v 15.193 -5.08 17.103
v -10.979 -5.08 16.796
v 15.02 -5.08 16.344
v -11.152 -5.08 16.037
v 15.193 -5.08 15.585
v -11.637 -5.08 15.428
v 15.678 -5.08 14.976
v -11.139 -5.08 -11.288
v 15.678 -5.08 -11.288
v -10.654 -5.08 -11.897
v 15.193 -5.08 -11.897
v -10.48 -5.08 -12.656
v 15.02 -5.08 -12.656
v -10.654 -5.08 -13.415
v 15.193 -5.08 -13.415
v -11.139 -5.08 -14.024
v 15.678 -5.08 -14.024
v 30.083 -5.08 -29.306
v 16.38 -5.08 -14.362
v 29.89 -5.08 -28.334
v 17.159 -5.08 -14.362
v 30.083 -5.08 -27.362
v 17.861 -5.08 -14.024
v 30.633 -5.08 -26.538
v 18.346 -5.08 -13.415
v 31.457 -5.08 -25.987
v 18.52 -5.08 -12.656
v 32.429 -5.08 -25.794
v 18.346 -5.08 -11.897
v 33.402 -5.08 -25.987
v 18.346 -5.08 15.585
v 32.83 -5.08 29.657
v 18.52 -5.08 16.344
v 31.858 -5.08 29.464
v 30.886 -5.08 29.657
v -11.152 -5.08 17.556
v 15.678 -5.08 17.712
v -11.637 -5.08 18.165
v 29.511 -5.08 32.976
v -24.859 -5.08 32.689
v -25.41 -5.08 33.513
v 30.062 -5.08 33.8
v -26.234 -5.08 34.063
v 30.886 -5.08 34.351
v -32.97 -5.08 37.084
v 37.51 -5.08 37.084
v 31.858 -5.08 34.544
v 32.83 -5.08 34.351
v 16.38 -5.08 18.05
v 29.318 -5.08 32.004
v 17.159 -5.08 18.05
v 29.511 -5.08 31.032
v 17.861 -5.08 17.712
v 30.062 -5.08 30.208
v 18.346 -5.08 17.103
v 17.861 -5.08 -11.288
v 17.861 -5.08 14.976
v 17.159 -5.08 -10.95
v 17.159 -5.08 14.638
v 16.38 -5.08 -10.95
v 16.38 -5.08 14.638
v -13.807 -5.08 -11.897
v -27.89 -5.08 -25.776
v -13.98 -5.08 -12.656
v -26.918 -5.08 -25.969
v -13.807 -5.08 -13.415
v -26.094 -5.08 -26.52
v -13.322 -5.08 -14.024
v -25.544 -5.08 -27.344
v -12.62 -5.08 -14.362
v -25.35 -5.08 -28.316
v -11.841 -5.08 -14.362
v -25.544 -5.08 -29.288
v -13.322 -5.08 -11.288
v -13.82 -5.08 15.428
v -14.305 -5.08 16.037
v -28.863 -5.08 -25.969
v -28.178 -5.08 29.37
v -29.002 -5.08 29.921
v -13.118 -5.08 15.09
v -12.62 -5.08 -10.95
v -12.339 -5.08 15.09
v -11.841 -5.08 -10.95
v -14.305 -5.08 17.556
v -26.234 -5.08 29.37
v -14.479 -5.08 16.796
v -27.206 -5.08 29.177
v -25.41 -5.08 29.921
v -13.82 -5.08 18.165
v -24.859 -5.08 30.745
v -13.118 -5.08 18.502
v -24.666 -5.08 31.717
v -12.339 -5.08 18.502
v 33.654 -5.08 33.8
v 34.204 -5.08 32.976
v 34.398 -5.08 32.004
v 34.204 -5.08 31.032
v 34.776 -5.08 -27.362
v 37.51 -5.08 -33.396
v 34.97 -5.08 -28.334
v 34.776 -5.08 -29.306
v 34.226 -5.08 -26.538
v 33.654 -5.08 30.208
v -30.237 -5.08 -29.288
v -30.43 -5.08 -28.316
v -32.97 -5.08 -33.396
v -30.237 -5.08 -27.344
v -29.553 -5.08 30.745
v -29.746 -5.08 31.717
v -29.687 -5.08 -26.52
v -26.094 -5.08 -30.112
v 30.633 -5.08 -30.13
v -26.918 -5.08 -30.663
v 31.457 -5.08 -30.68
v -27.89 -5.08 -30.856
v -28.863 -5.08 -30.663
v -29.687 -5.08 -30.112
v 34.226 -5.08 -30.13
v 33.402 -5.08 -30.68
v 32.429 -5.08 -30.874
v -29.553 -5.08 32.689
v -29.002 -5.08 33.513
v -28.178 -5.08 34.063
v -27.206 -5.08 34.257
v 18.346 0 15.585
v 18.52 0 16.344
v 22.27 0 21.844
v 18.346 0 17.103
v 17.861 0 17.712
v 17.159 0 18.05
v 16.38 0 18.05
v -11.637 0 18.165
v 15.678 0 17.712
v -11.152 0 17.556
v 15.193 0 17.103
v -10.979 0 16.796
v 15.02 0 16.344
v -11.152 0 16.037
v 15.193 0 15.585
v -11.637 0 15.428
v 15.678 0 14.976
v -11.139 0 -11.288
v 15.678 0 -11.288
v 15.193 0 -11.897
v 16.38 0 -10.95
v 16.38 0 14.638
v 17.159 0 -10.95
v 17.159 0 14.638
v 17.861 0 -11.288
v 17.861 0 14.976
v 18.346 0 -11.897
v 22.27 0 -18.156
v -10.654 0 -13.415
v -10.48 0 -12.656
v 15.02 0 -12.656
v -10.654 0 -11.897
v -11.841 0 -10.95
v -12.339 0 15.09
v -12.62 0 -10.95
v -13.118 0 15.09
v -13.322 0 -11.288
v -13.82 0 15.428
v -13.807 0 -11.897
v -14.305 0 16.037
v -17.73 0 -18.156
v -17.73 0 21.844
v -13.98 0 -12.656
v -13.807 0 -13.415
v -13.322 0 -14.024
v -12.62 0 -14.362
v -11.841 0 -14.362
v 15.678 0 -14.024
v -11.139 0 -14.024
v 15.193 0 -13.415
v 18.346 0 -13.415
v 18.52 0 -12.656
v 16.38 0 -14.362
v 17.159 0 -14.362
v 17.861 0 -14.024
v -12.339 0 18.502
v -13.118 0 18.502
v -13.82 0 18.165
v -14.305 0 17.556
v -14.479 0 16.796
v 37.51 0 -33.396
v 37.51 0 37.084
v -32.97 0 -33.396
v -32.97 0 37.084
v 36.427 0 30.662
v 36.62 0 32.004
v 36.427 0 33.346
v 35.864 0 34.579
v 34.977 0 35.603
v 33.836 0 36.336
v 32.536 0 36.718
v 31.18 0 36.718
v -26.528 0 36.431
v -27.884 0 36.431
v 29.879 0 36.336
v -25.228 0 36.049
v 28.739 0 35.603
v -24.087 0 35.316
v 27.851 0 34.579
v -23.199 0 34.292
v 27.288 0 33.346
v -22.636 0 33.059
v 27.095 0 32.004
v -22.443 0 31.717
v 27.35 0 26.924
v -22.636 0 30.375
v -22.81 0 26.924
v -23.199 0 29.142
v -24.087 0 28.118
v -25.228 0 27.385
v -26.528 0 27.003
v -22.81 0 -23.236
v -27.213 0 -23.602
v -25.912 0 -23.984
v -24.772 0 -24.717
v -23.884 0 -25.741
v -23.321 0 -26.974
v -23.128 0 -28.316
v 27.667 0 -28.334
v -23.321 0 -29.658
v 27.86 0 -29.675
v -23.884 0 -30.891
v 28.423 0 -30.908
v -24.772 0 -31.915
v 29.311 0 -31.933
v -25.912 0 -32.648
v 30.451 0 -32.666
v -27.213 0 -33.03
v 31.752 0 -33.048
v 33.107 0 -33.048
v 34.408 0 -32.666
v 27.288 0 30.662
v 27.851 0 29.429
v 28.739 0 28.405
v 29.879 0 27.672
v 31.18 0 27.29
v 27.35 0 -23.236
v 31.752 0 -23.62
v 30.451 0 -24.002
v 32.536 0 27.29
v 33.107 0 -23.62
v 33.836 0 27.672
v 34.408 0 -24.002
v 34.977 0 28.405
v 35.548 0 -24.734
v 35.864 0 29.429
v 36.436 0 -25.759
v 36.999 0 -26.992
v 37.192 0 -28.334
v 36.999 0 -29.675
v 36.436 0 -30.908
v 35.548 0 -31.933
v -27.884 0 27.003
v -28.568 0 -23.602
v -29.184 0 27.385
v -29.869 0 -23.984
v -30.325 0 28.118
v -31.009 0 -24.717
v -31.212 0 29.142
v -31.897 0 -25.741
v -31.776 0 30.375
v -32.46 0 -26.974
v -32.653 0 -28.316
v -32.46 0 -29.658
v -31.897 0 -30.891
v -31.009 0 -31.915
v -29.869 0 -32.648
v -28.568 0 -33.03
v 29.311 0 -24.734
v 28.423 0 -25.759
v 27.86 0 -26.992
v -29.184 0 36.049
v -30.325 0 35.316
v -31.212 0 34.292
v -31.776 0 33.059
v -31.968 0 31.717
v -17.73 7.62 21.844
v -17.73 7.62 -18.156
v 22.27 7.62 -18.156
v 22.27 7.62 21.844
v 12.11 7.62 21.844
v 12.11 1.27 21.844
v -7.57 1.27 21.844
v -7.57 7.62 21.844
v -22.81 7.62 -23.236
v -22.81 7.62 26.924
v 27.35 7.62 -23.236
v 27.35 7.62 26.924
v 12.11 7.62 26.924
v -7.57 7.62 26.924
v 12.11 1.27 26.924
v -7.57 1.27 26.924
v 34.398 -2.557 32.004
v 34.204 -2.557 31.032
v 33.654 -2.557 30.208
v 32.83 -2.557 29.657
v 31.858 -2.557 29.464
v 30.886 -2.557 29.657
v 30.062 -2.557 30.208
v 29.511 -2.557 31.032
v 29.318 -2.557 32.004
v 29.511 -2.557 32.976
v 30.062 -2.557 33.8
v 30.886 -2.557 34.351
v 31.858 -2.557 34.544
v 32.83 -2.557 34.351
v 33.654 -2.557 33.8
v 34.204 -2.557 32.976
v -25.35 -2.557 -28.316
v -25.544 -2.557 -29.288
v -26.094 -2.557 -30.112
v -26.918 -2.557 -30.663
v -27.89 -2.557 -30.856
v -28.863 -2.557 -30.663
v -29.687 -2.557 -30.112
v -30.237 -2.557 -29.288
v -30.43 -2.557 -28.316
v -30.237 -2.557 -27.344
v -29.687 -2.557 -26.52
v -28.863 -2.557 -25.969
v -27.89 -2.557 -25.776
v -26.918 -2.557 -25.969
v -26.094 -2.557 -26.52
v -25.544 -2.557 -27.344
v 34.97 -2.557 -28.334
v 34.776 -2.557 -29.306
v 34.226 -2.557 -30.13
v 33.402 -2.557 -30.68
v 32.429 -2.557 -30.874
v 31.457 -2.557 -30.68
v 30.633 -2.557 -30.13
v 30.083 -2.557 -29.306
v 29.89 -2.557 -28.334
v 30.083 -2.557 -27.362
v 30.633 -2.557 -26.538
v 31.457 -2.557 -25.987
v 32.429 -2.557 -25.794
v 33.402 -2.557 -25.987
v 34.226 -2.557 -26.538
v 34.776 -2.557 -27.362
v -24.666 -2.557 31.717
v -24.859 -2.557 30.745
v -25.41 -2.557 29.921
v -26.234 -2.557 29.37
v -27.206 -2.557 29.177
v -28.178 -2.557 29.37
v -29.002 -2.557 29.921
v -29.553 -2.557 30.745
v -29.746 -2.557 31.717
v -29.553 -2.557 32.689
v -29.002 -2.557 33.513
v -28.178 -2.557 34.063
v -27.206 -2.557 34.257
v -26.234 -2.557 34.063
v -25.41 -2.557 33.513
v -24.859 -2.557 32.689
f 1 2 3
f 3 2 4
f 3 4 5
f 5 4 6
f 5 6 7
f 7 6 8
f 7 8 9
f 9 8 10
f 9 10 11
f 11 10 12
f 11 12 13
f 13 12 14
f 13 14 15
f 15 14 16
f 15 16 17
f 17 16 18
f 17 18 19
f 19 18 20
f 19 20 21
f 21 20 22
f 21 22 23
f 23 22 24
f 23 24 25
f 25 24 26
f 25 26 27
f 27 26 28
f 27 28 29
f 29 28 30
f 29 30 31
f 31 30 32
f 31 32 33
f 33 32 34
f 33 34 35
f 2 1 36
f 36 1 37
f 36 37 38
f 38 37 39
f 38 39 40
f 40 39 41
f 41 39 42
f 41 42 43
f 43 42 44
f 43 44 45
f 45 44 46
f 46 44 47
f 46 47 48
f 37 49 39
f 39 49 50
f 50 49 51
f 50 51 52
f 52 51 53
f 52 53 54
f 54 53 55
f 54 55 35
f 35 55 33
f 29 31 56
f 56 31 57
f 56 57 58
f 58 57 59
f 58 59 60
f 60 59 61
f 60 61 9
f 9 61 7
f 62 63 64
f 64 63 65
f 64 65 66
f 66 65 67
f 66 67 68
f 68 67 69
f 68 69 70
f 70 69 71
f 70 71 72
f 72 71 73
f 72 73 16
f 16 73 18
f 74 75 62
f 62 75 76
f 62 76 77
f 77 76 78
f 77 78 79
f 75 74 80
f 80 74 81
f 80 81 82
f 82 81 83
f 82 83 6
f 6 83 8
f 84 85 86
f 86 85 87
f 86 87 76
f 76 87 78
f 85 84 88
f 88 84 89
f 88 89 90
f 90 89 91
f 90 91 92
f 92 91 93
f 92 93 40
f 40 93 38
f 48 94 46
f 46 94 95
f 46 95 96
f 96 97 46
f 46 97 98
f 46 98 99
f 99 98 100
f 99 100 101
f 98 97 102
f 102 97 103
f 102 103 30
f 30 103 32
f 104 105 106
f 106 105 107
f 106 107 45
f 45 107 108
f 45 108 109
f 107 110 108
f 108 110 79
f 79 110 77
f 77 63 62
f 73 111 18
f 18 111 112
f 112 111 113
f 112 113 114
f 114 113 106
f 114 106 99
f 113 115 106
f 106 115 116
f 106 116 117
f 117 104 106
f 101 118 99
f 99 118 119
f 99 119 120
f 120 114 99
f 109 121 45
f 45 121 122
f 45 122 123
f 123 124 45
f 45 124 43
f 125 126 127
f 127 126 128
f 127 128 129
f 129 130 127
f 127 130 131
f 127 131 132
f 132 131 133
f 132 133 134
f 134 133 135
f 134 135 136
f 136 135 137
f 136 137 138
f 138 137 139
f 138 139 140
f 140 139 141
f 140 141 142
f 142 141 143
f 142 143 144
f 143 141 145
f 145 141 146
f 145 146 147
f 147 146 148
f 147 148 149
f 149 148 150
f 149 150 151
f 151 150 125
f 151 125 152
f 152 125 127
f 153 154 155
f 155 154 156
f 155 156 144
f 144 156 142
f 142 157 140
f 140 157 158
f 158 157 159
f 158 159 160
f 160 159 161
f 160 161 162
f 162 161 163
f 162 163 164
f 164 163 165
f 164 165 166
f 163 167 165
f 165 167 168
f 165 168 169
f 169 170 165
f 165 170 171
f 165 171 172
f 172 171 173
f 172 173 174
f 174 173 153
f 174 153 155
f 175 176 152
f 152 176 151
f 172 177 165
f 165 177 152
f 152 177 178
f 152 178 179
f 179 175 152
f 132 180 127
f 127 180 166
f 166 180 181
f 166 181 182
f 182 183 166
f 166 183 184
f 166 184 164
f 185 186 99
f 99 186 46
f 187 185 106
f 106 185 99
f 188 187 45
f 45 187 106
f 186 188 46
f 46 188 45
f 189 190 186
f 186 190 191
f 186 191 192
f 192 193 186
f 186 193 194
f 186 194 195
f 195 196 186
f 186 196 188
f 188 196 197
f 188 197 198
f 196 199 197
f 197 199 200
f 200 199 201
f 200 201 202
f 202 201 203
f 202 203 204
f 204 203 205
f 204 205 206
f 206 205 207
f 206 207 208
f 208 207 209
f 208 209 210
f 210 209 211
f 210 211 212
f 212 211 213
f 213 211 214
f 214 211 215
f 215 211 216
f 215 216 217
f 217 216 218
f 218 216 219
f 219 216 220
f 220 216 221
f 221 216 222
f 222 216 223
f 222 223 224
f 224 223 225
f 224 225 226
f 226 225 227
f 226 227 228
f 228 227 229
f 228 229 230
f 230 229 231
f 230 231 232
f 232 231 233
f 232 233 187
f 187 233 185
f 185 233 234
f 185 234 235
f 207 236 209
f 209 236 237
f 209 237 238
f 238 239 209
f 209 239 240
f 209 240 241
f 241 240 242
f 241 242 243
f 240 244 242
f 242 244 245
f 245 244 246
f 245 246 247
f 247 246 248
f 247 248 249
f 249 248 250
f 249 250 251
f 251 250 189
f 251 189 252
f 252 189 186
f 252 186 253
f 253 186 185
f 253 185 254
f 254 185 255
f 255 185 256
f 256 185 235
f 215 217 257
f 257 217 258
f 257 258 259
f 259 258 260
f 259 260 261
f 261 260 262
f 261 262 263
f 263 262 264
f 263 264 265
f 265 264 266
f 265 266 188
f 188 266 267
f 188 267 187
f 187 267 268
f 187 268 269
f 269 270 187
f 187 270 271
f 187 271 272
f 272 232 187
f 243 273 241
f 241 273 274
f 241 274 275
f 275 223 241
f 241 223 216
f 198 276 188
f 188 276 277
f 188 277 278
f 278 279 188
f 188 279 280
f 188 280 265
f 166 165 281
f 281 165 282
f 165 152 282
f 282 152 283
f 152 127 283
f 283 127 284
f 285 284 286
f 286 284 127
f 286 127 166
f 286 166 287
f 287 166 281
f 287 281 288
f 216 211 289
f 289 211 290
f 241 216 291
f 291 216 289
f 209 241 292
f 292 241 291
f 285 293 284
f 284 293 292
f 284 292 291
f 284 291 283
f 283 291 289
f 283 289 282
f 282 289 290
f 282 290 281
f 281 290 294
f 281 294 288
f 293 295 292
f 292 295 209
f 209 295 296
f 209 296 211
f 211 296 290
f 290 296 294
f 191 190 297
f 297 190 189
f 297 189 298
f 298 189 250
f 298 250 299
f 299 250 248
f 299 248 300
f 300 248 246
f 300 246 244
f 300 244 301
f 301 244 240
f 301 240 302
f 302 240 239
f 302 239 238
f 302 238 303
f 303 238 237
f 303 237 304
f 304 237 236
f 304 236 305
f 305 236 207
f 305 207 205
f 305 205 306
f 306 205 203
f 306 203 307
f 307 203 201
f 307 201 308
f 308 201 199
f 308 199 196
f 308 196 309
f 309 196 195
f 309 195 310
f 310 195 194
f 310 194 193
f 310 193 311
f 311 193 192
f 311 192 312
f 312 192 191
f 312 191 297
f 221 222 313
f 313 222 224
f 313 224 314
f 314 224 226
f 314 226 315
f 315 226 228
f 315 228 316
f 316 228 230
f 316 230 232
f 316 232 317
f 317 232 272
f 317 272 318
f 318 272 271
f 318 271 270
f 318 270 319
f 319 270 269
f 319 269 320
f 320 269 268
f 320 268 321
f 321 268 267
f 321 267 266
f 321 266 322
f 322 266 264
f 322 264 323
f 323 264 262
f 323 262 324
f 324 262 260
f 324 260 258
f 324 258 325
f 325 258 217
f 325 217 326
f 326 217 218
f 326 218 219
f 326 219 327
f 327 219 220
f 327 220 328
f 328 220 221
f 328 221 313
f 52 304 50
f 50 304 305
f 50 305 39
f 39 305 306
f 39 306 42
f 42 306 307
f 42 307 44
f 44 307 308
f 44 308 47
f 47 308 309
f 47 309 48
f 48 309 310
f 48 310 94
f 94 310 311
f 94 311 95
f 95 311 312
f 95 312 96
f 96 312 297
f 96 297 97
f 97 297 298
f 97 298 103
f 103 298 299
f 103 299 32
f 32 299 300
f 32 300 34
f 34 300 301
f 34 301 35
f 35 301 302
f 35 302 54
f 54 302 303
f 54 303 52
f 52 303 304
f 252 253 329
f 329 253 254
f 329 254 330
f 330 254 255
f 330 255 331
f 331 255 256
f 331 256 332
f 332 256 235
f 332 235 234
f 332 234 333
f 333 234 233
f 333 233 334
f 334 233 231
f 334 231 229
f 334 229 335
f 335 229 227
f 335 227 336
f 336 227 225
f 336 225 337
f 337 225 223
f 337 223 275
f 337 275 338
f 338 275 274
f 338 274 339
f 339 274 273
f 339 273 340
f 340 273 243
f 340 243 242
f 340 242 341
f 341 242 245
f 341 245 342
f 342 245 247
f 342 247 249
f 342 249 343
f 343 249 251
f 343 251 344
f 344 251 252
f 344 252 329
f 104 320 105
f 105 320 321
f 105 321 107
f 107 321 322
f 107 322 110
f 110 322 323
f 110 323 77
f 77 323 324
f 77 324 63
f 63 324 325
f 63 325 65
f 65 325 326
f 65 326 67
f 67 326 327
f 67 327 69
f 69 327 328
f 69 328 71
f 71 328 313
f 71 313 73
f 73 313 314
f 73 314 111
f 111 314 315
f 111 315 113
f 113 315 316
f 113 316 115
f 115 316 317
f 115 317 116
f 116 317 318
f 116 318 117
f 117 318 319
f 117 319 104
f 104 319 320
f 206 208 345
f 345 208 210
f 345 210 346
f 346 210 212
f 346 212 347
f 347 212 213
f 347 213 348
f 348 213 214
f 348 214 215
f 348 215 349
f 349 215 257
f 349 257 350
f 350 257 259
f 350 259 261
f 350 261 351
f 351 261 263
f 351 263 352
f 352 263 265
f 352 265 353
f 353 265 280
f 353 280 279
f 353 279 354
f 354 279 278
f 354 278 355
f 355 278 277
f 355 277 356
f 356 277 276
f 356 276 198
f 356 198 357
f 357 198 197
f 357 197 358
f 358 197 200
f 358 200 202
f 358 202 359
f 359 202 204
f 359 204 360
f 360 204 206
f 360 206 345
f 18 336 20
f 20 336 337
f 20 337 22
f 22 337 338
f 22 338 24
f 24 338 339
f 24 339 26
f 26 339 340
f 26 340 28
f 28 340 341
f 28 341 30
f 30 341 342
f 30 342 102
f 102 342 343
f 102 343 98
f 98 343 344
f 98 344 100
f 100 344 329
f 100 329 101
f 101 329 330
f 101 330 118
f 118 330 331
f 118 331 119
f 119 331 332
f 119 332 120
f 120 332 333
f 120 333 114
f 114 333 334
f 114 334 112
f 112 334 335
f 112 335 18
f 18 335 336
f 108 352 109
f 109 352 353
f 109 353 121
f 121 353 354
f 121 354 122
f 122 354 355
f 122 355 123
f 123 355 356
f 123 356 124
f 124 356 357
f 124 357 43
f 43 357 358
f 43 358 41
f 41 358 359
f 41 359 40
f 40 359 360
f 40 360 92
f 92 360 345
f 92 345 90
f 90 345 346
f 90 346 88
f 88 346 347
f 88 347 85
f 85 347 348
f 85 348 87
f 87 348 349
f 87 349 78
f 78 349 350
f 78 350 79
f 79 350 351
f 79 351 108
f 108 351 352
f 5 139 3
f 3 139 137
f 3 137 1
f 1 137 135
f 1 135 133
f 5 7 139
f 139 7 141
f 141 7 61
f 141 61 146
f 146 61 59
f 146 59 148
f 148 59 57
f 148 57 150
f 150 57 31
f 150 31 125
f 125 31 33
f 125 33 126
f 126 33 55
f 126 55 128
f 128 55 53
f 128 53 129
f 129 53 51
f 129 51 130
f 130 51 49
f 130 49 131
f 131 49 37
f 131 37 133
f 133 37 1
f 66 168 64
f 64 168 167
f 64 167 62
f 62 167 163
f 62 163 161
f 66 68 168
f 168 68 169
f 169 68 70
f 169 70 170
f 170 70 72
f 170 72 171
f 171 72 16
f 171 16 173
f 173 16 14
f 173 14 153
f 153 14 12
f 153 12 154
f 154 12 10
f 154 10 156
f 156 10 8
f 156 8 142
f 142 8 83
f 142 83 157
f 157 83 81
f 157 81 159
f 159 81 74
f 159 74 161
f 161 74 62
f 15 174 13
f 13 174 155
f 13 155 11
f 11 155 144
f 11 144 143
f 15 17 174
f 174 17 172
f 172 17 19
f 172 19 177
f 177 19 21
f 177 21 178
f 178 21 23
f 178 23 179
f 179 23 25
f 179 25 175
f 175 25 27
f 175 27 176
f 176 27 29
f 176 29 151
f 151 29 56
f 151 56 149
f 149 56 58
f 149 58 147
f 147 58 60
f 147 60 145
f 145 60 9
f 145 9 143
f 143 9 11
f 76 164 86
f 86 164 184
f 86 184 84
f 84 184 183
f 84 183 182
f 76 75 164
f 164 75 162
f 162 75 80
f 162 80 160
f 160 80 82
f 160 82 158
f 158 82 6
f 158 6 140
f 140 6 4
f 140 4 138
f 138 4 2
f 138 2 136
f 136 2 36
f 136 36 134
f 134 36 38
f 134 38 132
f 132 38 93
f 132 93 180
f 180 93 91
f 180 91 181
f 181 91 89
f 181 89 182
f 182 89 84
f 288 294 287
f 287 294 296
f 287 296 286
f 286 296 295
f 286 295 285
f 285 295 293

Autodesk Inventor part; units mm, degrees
ref_plane "YZ Plane" through (0, 0, 0) normal (1, 0, 0) x (0, 1, 0)
ref_plane "XZ Plane" through (0, 0, 0) normal (0, 1, 0) x (-1, 0, 0)
ref_plane "XY Plane" through (0, 0, 0) normal (0, 0, 1) x (1, 0, 0)
sketch "Sketch1" plane through (0, 0, 0) normal (0, 1, 0) x (-1, 0, 0)
  line L0 (17.7305, 21.844) -> (-22.2695, 21.844)
  line L1 (-22.2695, 21.844) -> (-22.2695, -18.156)
  line L2 (-22.2695, -18.156) -> (17.7305, -18.156)
  line L3 (17.7305, -18.156) -> (17.7305, 21.844)
  line L4 (22.8105, 26.924) -> (-27.3495, 26.924)
  line L5 (-27.3495, 26.924) -> (-27.3495, -23.236)
  line L6 (-27.3495, -23.236) -> (22.8105, -23.236)
  line L7 (22.8105, -23.236) -> (22.8105, 26.924)
  point P0 (0, 0)
  dimension "d0" = 40
  dimension "d1" = 40
  dimension "d2" = 5.08
  dimension "d3" = 5.08
  dimension "d4" = 5.08
  dimension "d5" = 5.08
extrude "Extrusion1" add sketch "Sketch1" along normal blind 7.62
sketch "Sketch2" plane through (0, 0, 0) normal (0, -1, 0) x (1, 0, 0)
  line L0 (37.5095, 37.084) -> (-32.9705, 37.084)
  line L1 (-32.9705, 37.084) -> (-32.9705, -33.396)
  line L2 (-32.9705, -33.396) -> (37.5095, -33.396)
  line L3 (37.5095, -33.396) -> (37.5095, 37.084)
  line L4 (-22.8105, 26.924) -> (27.3495, 26.924) projected
  line L5 (27.3495, 26.924) -> (27.3495, -23.236) projected
  line L6 (-22.8105, -23.236) -> (-22.8105, 26.924) projected
  line L7 (27.3495, -23.236) -> (-22.8105, -23.236) projected
  point P0 (0, 0)
  dimension "d8" = 10.16
  dimension "d9" = 10.16
  dimension "d10" = 10.16
  dimension "d11" = 10.16
extrude "Extrusion2" add sketch "Sketch2" along normal blind 5.08 contours L3 L2 L1 L0 | L4 L5 L7 L6
sketch "Sketch3" plane through (0, 0, 0) normal (0, 1, 0) x (1, 0, 0)
  line L0 (-32.9705, 33.396) -> (37.5095, 33.396) projected
  line L1 (-32.9705, -37.084) -> (-32.9705, 33.396) projected
  line L2 (37.5095, 33.396) -> (37.5095, -37.084) projected
  line L3 (37.5095, -37.084) -> (-32.9705, -37.084) projected
  point P0 (0, 0)
  point P1 (-27.8905, 28.316)
  point P2 (32.4295, 28.3337)
  point P3 (31.8578, -32.004)
  point P4 (-27.206, -31.7168)
  dimension "d14" = 5.08
  dimension "d15" = 5.08
  dimension "d16" = 5.08
  dimension "d17" = 5.08
hole "Hole1" at (-27.8905, 0, -28.316) at (32.4295, 0, -28.3337) at (31.8578, 0, 32.004) at (-27.206, 0, 31.7168) direction (0, -1, 0) diameter 5.08 depth 25.4 tip angle 118 countersink diameter 9.525 countersink angle 82
sketch "Sketch4" plane through (0, 0, 0) normal (0, 1, 0) x (1, 0, 0)
  line L0 (-17.7305, 18.156) -> (22.2695, 18.156) projected
  line L1 (22.2695, -21.844) -> (-17.7305, -21.844) projected
  line L2 (22.2695, -21.844) -> (22.2695, 18.156) projected
  line L3 (-17.7305, 18.156) -> (-17.7305, -21.844) projected
  point P0 (0, 0)
  point P1 (-12.2305, 12.656)
  point P2 (16.7695, 12.656)
  point P3 (16.7695, -16.344)
  point P4 (-12.7285, -16.7964)
  dimension "d25" = 29
  dimension "d26" = 29
  dimension "d27" = 5.5
  dimension "d28" = 5.5
  dimension "d29" = 5.5
  dimension "d30" = 5.5
hole "Hole2" at (-12.2305, 0, -12.656) at (16.7695, 0, -12.656) at (16.7695, 0, 16.344) at (-12.7285, 0, 16.7964) direction (0, -1, 0) diameter 3.5 depth 25.4 tip angle 118
sketch "Sketch5" plane through (0, 7.62, 0) normal (0, 1, 0) x (1, 0, 0)
  line L0 (-7.5705, -40.5496) -> (12.1095, -40.5496)
  line L1 (12.1095, -40.5496) -> (12.1095, -14.6017)
  line L2 (12.1095, -14.6017) -> (-7.5705, -14.6017)
  line L3 (-7.5705, -14.6017) -> (-7.5705, -40.5496)
  line L4 (-22.8105, 23.236) -> (-22.8105, -26.924) projected
  line L5 (27.3495, -26.924) -> (27.3495, 23.236) projected
  point P0 (0, 0)
  dimension "d38" = 15.24
  dimension "d39" = 15.24
extrude "Extrusion3" cut sketch "Sketch5" against normal blind 6.35
properties part number "PigeonIMUMount"
